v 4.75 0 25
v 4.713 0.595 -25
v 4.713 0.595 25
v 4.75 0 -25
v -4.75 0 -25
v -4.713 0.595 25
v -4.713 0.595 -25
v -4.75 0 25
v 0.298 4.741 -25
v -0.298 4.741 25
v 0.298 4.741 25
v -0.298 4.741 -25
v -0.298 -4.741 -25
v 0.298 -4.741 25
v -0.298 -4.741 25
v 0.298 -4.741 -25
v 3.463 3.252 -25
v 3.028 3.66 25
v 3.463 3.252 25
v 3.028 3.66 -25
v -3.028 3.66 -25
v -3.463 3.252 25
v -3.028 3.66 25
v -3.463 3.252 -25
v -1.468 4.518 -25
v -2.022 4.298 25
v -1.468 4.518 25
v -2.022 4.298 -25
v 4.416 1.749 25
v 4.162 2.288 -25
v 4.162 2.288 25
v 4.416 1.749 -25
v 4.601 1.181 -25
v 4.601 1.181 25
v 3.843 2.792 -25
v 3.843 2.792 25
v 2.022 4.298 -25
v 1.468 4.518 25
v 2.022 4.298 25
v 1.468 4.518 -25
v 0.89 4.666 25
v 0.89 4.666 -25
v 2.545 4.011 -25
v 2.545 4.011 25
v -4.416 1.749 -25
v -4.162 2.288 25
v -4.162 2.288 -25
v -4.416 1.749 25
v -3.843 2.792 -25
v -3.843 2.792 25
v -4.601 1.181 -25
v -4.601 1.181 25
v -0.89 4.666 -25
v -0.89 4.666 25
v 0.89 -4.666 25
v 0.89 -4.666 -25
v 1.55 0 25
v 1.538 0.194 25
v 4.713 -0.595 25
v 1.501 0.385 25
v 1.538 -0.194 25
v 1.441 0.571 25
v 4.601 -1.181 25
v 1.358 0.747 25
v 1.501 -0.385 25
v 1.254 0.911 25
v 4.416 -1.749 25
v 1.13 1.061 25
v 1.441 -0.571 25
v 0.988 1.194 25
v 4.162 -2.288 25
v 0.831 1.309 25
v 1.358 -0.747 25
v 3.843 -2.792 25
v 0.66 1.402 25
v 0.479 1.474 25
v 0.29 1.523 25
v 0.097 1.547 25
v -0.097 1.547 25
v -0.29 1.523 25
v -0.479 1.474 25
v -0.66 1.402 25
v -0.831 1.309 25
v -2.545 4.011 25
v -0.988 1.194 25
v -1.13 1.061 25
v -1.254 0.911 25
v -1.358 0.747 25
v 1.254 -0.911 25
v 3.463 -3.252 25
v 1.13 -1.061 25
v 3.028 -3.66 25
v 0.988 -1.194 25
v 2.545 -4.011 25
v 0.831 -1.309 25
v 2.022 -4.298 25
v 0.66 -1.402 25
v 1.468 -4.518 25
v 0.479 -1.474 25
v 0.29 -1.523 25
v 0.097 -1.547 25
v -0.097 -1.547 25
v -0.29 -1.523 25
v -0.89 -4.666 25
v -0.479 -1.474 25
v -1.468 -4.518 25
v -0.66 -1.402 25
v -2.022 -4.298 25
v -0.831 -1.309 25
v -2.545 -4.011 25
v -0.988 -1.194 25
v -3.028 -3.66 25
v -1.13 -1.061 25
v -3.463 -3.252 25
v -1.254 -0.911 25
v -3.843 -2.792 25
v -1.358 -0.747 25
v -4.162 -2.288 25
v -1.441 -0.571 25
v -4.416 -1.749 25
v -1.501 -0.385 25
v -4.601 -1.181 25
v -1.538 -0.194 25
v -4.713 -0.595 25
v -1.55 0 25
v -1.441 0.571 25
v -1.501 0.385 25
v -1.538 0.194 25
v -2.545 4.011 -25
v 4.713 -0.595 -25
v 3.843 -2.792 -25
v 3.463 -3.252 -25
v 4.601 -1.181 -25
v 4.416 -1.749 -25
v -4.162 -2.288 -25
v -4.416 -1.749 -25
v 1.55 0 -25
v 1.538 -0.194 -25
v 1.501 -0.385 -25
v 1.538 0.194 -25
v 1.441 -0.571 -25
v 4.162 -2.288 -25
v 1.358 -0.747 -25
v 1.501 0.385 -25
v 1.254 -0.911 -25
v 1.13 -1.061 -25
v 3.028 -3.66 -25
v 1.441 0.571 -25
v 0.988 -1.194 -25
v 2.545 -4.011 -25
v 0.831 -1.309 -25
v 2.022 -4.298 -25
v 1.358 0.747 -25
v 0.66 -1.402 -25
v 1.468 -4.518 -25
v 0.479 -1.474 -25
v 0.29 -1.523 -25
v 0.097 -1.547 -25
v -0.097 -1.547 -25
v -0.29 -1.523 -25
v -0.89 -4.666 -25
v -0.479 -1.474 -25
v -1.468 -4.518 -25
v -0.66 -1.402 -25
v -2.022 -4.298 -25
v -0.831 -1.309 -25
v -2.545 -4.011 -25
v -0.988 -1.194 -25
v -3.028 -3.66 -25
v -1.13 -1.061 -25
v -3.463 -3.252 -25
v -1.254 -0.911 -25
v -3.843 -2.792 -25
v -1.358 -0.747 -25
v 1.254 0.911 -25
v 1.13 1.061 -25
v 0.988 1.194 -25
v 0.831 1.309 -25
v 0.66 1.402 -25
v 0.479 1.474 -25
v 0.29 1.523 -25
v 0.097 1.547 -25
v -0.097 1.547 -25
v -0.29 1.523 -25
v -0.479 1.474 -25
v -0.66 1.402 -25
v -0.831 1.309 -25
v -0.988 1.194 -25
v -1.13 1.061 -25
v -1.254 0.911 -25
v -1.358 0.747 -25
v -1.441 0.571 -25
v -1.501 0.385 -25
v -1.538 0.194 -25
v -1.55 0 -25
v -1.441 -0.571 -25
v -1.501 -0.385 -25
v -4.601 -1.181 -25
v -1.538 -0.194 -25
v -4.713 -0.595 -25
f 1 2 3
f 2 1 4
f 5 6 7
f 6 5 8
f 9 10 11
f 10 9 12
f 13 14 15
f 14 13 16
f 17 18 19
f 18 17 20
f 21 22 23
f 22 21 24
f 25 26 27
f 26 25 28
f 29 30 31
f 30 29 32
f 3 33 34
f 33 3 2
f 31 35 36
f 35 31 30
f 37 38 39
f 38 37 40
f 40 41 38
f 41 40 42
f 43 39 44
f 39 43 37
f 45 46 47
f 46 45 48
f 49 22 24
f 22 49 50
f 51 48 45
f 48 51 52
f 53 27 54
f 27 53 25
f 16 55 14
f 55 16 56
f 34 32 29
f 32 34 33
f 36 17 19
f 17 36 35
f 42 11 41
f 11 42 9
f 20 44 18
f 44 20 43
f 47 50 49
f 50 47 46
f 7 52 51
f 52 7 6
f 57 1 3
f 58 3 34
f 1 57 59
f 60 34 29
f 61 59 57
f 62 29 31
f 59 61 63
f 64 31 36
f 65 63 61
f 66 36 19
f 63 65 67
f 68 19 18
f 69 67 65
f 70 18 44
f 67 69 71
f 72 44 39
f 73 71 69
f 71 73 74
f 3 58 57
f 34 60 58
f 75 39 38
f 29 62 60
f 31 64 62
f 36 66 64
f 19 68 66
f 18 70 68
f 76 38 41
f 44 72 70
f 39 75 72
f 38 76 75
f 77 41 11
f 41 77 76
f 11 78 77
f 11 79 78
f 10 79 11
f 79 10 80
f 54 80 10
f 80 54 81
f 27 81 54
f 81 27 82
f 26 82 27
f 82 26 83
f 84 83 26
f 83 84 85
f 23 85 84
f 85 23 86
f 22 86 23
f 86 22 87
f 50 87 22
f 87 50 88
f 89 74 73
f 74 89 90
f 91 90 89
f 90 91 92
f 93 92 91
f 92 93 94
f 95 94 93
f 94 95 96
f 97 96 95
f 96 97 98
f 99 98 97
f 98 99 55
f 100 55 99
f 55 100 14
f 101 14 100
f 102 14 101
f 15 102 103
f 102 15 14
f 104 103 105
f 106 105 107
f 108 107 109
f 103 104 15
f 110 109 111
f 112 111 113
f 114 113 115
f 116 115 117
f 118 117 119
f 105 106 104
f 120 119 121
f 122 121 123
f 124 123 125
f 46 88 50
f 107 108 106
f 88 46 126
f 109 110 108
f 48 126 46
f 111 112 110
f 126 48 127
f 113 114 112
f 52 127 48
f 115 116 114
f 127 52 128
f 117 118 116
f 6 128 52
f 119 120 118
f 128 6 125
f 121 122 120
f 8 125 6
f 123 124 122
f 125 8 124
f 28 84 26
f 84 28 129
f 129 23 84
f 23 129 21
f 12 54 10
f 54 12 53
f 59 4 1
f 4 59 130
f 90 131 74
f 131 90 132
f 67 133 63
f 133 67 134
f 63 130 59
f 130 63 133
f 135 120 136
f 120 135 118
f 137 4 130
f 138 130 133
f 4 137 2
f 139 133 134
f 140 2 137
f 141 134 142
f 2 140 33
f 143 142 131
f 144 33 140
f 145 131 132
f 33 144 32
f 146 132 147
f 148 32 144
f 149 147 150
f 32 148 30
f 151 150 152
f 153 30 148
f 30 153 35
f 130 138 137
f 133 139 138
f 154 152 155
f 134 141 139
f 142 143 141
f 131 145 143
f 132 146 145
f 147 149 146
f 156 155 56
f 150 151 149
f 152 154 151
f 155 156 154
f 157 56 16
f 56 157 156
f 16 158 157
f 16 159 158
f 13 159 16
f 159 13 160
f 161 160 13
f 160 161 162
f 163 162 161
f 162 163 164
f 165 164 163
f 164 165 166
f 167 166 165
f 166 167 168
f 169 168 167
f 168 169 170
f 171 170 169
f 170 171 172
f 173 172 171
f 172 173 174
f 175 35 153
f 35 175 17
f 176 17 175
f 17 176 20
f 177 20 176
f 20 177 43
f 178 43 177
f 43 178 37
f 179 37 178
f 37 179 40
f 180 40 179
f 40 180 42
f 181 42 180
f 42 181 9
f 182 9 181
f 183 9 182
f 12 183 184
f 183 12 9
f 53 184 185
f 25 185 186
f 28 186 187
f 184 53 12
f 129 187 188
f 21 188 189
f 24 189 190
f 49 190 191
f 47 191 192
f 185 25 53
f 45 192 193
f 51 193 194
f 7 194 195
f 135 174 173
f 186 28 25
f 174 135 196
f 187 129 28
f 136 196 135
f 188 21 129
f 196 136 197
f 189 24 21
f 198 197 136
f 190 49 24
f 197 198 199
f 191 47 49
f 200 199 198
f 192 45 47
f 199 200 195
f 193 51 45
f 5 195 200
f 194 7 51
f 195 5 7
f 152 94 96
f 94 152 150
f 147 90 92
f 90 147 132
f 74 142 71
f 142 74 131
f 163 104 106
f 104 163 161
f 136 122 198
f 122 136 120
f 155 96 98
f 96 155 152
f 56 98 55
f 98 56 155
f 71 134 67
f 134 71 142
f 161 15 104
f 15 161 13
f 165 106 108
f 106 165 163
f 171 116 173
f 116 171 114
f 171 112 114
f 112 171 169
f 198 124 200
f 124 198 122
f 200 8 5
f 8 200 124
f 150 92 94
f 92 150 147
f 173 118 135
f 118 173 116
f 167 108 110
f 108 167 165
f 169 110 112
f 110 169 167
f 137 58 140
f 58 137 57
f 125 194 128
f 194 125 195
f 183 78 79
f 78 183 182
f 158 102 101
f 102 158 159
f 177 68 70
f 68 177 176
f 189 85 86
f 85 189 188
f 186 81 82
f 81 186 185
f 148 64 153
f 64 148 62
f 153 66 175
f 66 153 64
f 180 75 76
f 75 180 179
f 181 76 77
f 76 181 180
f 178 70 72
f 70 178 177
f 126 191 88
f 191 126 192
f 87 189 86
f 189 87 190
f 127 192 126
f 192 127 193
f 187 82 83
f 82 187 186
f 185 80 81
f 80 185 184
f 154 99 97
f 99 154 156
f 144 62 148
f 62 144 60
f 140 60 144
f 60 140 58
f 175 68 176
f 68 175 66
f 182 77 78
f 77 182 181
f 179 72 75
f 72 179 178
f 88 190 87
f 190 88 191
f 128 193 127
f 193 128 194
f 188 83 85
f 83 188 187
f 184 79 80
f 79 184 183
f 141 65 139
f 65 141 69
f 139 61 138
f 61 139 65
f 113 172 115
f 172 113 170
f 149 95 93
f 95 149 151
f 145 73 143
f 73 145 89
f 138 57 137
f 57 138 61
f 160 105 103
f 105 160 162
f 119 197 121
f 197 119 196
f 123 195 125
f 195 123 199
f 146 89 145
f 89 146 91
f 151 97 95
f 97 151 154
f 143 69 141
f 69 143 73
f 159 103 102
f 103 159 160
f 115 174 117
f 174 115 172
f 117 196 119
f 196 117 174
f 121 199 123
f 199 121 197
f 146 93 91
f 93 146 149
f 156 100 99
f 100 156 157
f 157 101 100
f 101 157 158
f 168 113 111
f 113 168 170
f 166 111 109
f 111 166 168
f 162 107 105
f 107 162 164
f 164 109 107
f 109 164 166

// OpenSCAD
$fn = 50;


difference() {
	union() {
		translate(v = [0, 0, -25.0000000000]) {
			cylinder(h = 50, r = 4.7500000000);
		}
	}
	union() {
		translate(v = [0, 0, -100.0000000000]) {
			cylinder(h = 200, r = 1.5500000000);
		}
	}
}
